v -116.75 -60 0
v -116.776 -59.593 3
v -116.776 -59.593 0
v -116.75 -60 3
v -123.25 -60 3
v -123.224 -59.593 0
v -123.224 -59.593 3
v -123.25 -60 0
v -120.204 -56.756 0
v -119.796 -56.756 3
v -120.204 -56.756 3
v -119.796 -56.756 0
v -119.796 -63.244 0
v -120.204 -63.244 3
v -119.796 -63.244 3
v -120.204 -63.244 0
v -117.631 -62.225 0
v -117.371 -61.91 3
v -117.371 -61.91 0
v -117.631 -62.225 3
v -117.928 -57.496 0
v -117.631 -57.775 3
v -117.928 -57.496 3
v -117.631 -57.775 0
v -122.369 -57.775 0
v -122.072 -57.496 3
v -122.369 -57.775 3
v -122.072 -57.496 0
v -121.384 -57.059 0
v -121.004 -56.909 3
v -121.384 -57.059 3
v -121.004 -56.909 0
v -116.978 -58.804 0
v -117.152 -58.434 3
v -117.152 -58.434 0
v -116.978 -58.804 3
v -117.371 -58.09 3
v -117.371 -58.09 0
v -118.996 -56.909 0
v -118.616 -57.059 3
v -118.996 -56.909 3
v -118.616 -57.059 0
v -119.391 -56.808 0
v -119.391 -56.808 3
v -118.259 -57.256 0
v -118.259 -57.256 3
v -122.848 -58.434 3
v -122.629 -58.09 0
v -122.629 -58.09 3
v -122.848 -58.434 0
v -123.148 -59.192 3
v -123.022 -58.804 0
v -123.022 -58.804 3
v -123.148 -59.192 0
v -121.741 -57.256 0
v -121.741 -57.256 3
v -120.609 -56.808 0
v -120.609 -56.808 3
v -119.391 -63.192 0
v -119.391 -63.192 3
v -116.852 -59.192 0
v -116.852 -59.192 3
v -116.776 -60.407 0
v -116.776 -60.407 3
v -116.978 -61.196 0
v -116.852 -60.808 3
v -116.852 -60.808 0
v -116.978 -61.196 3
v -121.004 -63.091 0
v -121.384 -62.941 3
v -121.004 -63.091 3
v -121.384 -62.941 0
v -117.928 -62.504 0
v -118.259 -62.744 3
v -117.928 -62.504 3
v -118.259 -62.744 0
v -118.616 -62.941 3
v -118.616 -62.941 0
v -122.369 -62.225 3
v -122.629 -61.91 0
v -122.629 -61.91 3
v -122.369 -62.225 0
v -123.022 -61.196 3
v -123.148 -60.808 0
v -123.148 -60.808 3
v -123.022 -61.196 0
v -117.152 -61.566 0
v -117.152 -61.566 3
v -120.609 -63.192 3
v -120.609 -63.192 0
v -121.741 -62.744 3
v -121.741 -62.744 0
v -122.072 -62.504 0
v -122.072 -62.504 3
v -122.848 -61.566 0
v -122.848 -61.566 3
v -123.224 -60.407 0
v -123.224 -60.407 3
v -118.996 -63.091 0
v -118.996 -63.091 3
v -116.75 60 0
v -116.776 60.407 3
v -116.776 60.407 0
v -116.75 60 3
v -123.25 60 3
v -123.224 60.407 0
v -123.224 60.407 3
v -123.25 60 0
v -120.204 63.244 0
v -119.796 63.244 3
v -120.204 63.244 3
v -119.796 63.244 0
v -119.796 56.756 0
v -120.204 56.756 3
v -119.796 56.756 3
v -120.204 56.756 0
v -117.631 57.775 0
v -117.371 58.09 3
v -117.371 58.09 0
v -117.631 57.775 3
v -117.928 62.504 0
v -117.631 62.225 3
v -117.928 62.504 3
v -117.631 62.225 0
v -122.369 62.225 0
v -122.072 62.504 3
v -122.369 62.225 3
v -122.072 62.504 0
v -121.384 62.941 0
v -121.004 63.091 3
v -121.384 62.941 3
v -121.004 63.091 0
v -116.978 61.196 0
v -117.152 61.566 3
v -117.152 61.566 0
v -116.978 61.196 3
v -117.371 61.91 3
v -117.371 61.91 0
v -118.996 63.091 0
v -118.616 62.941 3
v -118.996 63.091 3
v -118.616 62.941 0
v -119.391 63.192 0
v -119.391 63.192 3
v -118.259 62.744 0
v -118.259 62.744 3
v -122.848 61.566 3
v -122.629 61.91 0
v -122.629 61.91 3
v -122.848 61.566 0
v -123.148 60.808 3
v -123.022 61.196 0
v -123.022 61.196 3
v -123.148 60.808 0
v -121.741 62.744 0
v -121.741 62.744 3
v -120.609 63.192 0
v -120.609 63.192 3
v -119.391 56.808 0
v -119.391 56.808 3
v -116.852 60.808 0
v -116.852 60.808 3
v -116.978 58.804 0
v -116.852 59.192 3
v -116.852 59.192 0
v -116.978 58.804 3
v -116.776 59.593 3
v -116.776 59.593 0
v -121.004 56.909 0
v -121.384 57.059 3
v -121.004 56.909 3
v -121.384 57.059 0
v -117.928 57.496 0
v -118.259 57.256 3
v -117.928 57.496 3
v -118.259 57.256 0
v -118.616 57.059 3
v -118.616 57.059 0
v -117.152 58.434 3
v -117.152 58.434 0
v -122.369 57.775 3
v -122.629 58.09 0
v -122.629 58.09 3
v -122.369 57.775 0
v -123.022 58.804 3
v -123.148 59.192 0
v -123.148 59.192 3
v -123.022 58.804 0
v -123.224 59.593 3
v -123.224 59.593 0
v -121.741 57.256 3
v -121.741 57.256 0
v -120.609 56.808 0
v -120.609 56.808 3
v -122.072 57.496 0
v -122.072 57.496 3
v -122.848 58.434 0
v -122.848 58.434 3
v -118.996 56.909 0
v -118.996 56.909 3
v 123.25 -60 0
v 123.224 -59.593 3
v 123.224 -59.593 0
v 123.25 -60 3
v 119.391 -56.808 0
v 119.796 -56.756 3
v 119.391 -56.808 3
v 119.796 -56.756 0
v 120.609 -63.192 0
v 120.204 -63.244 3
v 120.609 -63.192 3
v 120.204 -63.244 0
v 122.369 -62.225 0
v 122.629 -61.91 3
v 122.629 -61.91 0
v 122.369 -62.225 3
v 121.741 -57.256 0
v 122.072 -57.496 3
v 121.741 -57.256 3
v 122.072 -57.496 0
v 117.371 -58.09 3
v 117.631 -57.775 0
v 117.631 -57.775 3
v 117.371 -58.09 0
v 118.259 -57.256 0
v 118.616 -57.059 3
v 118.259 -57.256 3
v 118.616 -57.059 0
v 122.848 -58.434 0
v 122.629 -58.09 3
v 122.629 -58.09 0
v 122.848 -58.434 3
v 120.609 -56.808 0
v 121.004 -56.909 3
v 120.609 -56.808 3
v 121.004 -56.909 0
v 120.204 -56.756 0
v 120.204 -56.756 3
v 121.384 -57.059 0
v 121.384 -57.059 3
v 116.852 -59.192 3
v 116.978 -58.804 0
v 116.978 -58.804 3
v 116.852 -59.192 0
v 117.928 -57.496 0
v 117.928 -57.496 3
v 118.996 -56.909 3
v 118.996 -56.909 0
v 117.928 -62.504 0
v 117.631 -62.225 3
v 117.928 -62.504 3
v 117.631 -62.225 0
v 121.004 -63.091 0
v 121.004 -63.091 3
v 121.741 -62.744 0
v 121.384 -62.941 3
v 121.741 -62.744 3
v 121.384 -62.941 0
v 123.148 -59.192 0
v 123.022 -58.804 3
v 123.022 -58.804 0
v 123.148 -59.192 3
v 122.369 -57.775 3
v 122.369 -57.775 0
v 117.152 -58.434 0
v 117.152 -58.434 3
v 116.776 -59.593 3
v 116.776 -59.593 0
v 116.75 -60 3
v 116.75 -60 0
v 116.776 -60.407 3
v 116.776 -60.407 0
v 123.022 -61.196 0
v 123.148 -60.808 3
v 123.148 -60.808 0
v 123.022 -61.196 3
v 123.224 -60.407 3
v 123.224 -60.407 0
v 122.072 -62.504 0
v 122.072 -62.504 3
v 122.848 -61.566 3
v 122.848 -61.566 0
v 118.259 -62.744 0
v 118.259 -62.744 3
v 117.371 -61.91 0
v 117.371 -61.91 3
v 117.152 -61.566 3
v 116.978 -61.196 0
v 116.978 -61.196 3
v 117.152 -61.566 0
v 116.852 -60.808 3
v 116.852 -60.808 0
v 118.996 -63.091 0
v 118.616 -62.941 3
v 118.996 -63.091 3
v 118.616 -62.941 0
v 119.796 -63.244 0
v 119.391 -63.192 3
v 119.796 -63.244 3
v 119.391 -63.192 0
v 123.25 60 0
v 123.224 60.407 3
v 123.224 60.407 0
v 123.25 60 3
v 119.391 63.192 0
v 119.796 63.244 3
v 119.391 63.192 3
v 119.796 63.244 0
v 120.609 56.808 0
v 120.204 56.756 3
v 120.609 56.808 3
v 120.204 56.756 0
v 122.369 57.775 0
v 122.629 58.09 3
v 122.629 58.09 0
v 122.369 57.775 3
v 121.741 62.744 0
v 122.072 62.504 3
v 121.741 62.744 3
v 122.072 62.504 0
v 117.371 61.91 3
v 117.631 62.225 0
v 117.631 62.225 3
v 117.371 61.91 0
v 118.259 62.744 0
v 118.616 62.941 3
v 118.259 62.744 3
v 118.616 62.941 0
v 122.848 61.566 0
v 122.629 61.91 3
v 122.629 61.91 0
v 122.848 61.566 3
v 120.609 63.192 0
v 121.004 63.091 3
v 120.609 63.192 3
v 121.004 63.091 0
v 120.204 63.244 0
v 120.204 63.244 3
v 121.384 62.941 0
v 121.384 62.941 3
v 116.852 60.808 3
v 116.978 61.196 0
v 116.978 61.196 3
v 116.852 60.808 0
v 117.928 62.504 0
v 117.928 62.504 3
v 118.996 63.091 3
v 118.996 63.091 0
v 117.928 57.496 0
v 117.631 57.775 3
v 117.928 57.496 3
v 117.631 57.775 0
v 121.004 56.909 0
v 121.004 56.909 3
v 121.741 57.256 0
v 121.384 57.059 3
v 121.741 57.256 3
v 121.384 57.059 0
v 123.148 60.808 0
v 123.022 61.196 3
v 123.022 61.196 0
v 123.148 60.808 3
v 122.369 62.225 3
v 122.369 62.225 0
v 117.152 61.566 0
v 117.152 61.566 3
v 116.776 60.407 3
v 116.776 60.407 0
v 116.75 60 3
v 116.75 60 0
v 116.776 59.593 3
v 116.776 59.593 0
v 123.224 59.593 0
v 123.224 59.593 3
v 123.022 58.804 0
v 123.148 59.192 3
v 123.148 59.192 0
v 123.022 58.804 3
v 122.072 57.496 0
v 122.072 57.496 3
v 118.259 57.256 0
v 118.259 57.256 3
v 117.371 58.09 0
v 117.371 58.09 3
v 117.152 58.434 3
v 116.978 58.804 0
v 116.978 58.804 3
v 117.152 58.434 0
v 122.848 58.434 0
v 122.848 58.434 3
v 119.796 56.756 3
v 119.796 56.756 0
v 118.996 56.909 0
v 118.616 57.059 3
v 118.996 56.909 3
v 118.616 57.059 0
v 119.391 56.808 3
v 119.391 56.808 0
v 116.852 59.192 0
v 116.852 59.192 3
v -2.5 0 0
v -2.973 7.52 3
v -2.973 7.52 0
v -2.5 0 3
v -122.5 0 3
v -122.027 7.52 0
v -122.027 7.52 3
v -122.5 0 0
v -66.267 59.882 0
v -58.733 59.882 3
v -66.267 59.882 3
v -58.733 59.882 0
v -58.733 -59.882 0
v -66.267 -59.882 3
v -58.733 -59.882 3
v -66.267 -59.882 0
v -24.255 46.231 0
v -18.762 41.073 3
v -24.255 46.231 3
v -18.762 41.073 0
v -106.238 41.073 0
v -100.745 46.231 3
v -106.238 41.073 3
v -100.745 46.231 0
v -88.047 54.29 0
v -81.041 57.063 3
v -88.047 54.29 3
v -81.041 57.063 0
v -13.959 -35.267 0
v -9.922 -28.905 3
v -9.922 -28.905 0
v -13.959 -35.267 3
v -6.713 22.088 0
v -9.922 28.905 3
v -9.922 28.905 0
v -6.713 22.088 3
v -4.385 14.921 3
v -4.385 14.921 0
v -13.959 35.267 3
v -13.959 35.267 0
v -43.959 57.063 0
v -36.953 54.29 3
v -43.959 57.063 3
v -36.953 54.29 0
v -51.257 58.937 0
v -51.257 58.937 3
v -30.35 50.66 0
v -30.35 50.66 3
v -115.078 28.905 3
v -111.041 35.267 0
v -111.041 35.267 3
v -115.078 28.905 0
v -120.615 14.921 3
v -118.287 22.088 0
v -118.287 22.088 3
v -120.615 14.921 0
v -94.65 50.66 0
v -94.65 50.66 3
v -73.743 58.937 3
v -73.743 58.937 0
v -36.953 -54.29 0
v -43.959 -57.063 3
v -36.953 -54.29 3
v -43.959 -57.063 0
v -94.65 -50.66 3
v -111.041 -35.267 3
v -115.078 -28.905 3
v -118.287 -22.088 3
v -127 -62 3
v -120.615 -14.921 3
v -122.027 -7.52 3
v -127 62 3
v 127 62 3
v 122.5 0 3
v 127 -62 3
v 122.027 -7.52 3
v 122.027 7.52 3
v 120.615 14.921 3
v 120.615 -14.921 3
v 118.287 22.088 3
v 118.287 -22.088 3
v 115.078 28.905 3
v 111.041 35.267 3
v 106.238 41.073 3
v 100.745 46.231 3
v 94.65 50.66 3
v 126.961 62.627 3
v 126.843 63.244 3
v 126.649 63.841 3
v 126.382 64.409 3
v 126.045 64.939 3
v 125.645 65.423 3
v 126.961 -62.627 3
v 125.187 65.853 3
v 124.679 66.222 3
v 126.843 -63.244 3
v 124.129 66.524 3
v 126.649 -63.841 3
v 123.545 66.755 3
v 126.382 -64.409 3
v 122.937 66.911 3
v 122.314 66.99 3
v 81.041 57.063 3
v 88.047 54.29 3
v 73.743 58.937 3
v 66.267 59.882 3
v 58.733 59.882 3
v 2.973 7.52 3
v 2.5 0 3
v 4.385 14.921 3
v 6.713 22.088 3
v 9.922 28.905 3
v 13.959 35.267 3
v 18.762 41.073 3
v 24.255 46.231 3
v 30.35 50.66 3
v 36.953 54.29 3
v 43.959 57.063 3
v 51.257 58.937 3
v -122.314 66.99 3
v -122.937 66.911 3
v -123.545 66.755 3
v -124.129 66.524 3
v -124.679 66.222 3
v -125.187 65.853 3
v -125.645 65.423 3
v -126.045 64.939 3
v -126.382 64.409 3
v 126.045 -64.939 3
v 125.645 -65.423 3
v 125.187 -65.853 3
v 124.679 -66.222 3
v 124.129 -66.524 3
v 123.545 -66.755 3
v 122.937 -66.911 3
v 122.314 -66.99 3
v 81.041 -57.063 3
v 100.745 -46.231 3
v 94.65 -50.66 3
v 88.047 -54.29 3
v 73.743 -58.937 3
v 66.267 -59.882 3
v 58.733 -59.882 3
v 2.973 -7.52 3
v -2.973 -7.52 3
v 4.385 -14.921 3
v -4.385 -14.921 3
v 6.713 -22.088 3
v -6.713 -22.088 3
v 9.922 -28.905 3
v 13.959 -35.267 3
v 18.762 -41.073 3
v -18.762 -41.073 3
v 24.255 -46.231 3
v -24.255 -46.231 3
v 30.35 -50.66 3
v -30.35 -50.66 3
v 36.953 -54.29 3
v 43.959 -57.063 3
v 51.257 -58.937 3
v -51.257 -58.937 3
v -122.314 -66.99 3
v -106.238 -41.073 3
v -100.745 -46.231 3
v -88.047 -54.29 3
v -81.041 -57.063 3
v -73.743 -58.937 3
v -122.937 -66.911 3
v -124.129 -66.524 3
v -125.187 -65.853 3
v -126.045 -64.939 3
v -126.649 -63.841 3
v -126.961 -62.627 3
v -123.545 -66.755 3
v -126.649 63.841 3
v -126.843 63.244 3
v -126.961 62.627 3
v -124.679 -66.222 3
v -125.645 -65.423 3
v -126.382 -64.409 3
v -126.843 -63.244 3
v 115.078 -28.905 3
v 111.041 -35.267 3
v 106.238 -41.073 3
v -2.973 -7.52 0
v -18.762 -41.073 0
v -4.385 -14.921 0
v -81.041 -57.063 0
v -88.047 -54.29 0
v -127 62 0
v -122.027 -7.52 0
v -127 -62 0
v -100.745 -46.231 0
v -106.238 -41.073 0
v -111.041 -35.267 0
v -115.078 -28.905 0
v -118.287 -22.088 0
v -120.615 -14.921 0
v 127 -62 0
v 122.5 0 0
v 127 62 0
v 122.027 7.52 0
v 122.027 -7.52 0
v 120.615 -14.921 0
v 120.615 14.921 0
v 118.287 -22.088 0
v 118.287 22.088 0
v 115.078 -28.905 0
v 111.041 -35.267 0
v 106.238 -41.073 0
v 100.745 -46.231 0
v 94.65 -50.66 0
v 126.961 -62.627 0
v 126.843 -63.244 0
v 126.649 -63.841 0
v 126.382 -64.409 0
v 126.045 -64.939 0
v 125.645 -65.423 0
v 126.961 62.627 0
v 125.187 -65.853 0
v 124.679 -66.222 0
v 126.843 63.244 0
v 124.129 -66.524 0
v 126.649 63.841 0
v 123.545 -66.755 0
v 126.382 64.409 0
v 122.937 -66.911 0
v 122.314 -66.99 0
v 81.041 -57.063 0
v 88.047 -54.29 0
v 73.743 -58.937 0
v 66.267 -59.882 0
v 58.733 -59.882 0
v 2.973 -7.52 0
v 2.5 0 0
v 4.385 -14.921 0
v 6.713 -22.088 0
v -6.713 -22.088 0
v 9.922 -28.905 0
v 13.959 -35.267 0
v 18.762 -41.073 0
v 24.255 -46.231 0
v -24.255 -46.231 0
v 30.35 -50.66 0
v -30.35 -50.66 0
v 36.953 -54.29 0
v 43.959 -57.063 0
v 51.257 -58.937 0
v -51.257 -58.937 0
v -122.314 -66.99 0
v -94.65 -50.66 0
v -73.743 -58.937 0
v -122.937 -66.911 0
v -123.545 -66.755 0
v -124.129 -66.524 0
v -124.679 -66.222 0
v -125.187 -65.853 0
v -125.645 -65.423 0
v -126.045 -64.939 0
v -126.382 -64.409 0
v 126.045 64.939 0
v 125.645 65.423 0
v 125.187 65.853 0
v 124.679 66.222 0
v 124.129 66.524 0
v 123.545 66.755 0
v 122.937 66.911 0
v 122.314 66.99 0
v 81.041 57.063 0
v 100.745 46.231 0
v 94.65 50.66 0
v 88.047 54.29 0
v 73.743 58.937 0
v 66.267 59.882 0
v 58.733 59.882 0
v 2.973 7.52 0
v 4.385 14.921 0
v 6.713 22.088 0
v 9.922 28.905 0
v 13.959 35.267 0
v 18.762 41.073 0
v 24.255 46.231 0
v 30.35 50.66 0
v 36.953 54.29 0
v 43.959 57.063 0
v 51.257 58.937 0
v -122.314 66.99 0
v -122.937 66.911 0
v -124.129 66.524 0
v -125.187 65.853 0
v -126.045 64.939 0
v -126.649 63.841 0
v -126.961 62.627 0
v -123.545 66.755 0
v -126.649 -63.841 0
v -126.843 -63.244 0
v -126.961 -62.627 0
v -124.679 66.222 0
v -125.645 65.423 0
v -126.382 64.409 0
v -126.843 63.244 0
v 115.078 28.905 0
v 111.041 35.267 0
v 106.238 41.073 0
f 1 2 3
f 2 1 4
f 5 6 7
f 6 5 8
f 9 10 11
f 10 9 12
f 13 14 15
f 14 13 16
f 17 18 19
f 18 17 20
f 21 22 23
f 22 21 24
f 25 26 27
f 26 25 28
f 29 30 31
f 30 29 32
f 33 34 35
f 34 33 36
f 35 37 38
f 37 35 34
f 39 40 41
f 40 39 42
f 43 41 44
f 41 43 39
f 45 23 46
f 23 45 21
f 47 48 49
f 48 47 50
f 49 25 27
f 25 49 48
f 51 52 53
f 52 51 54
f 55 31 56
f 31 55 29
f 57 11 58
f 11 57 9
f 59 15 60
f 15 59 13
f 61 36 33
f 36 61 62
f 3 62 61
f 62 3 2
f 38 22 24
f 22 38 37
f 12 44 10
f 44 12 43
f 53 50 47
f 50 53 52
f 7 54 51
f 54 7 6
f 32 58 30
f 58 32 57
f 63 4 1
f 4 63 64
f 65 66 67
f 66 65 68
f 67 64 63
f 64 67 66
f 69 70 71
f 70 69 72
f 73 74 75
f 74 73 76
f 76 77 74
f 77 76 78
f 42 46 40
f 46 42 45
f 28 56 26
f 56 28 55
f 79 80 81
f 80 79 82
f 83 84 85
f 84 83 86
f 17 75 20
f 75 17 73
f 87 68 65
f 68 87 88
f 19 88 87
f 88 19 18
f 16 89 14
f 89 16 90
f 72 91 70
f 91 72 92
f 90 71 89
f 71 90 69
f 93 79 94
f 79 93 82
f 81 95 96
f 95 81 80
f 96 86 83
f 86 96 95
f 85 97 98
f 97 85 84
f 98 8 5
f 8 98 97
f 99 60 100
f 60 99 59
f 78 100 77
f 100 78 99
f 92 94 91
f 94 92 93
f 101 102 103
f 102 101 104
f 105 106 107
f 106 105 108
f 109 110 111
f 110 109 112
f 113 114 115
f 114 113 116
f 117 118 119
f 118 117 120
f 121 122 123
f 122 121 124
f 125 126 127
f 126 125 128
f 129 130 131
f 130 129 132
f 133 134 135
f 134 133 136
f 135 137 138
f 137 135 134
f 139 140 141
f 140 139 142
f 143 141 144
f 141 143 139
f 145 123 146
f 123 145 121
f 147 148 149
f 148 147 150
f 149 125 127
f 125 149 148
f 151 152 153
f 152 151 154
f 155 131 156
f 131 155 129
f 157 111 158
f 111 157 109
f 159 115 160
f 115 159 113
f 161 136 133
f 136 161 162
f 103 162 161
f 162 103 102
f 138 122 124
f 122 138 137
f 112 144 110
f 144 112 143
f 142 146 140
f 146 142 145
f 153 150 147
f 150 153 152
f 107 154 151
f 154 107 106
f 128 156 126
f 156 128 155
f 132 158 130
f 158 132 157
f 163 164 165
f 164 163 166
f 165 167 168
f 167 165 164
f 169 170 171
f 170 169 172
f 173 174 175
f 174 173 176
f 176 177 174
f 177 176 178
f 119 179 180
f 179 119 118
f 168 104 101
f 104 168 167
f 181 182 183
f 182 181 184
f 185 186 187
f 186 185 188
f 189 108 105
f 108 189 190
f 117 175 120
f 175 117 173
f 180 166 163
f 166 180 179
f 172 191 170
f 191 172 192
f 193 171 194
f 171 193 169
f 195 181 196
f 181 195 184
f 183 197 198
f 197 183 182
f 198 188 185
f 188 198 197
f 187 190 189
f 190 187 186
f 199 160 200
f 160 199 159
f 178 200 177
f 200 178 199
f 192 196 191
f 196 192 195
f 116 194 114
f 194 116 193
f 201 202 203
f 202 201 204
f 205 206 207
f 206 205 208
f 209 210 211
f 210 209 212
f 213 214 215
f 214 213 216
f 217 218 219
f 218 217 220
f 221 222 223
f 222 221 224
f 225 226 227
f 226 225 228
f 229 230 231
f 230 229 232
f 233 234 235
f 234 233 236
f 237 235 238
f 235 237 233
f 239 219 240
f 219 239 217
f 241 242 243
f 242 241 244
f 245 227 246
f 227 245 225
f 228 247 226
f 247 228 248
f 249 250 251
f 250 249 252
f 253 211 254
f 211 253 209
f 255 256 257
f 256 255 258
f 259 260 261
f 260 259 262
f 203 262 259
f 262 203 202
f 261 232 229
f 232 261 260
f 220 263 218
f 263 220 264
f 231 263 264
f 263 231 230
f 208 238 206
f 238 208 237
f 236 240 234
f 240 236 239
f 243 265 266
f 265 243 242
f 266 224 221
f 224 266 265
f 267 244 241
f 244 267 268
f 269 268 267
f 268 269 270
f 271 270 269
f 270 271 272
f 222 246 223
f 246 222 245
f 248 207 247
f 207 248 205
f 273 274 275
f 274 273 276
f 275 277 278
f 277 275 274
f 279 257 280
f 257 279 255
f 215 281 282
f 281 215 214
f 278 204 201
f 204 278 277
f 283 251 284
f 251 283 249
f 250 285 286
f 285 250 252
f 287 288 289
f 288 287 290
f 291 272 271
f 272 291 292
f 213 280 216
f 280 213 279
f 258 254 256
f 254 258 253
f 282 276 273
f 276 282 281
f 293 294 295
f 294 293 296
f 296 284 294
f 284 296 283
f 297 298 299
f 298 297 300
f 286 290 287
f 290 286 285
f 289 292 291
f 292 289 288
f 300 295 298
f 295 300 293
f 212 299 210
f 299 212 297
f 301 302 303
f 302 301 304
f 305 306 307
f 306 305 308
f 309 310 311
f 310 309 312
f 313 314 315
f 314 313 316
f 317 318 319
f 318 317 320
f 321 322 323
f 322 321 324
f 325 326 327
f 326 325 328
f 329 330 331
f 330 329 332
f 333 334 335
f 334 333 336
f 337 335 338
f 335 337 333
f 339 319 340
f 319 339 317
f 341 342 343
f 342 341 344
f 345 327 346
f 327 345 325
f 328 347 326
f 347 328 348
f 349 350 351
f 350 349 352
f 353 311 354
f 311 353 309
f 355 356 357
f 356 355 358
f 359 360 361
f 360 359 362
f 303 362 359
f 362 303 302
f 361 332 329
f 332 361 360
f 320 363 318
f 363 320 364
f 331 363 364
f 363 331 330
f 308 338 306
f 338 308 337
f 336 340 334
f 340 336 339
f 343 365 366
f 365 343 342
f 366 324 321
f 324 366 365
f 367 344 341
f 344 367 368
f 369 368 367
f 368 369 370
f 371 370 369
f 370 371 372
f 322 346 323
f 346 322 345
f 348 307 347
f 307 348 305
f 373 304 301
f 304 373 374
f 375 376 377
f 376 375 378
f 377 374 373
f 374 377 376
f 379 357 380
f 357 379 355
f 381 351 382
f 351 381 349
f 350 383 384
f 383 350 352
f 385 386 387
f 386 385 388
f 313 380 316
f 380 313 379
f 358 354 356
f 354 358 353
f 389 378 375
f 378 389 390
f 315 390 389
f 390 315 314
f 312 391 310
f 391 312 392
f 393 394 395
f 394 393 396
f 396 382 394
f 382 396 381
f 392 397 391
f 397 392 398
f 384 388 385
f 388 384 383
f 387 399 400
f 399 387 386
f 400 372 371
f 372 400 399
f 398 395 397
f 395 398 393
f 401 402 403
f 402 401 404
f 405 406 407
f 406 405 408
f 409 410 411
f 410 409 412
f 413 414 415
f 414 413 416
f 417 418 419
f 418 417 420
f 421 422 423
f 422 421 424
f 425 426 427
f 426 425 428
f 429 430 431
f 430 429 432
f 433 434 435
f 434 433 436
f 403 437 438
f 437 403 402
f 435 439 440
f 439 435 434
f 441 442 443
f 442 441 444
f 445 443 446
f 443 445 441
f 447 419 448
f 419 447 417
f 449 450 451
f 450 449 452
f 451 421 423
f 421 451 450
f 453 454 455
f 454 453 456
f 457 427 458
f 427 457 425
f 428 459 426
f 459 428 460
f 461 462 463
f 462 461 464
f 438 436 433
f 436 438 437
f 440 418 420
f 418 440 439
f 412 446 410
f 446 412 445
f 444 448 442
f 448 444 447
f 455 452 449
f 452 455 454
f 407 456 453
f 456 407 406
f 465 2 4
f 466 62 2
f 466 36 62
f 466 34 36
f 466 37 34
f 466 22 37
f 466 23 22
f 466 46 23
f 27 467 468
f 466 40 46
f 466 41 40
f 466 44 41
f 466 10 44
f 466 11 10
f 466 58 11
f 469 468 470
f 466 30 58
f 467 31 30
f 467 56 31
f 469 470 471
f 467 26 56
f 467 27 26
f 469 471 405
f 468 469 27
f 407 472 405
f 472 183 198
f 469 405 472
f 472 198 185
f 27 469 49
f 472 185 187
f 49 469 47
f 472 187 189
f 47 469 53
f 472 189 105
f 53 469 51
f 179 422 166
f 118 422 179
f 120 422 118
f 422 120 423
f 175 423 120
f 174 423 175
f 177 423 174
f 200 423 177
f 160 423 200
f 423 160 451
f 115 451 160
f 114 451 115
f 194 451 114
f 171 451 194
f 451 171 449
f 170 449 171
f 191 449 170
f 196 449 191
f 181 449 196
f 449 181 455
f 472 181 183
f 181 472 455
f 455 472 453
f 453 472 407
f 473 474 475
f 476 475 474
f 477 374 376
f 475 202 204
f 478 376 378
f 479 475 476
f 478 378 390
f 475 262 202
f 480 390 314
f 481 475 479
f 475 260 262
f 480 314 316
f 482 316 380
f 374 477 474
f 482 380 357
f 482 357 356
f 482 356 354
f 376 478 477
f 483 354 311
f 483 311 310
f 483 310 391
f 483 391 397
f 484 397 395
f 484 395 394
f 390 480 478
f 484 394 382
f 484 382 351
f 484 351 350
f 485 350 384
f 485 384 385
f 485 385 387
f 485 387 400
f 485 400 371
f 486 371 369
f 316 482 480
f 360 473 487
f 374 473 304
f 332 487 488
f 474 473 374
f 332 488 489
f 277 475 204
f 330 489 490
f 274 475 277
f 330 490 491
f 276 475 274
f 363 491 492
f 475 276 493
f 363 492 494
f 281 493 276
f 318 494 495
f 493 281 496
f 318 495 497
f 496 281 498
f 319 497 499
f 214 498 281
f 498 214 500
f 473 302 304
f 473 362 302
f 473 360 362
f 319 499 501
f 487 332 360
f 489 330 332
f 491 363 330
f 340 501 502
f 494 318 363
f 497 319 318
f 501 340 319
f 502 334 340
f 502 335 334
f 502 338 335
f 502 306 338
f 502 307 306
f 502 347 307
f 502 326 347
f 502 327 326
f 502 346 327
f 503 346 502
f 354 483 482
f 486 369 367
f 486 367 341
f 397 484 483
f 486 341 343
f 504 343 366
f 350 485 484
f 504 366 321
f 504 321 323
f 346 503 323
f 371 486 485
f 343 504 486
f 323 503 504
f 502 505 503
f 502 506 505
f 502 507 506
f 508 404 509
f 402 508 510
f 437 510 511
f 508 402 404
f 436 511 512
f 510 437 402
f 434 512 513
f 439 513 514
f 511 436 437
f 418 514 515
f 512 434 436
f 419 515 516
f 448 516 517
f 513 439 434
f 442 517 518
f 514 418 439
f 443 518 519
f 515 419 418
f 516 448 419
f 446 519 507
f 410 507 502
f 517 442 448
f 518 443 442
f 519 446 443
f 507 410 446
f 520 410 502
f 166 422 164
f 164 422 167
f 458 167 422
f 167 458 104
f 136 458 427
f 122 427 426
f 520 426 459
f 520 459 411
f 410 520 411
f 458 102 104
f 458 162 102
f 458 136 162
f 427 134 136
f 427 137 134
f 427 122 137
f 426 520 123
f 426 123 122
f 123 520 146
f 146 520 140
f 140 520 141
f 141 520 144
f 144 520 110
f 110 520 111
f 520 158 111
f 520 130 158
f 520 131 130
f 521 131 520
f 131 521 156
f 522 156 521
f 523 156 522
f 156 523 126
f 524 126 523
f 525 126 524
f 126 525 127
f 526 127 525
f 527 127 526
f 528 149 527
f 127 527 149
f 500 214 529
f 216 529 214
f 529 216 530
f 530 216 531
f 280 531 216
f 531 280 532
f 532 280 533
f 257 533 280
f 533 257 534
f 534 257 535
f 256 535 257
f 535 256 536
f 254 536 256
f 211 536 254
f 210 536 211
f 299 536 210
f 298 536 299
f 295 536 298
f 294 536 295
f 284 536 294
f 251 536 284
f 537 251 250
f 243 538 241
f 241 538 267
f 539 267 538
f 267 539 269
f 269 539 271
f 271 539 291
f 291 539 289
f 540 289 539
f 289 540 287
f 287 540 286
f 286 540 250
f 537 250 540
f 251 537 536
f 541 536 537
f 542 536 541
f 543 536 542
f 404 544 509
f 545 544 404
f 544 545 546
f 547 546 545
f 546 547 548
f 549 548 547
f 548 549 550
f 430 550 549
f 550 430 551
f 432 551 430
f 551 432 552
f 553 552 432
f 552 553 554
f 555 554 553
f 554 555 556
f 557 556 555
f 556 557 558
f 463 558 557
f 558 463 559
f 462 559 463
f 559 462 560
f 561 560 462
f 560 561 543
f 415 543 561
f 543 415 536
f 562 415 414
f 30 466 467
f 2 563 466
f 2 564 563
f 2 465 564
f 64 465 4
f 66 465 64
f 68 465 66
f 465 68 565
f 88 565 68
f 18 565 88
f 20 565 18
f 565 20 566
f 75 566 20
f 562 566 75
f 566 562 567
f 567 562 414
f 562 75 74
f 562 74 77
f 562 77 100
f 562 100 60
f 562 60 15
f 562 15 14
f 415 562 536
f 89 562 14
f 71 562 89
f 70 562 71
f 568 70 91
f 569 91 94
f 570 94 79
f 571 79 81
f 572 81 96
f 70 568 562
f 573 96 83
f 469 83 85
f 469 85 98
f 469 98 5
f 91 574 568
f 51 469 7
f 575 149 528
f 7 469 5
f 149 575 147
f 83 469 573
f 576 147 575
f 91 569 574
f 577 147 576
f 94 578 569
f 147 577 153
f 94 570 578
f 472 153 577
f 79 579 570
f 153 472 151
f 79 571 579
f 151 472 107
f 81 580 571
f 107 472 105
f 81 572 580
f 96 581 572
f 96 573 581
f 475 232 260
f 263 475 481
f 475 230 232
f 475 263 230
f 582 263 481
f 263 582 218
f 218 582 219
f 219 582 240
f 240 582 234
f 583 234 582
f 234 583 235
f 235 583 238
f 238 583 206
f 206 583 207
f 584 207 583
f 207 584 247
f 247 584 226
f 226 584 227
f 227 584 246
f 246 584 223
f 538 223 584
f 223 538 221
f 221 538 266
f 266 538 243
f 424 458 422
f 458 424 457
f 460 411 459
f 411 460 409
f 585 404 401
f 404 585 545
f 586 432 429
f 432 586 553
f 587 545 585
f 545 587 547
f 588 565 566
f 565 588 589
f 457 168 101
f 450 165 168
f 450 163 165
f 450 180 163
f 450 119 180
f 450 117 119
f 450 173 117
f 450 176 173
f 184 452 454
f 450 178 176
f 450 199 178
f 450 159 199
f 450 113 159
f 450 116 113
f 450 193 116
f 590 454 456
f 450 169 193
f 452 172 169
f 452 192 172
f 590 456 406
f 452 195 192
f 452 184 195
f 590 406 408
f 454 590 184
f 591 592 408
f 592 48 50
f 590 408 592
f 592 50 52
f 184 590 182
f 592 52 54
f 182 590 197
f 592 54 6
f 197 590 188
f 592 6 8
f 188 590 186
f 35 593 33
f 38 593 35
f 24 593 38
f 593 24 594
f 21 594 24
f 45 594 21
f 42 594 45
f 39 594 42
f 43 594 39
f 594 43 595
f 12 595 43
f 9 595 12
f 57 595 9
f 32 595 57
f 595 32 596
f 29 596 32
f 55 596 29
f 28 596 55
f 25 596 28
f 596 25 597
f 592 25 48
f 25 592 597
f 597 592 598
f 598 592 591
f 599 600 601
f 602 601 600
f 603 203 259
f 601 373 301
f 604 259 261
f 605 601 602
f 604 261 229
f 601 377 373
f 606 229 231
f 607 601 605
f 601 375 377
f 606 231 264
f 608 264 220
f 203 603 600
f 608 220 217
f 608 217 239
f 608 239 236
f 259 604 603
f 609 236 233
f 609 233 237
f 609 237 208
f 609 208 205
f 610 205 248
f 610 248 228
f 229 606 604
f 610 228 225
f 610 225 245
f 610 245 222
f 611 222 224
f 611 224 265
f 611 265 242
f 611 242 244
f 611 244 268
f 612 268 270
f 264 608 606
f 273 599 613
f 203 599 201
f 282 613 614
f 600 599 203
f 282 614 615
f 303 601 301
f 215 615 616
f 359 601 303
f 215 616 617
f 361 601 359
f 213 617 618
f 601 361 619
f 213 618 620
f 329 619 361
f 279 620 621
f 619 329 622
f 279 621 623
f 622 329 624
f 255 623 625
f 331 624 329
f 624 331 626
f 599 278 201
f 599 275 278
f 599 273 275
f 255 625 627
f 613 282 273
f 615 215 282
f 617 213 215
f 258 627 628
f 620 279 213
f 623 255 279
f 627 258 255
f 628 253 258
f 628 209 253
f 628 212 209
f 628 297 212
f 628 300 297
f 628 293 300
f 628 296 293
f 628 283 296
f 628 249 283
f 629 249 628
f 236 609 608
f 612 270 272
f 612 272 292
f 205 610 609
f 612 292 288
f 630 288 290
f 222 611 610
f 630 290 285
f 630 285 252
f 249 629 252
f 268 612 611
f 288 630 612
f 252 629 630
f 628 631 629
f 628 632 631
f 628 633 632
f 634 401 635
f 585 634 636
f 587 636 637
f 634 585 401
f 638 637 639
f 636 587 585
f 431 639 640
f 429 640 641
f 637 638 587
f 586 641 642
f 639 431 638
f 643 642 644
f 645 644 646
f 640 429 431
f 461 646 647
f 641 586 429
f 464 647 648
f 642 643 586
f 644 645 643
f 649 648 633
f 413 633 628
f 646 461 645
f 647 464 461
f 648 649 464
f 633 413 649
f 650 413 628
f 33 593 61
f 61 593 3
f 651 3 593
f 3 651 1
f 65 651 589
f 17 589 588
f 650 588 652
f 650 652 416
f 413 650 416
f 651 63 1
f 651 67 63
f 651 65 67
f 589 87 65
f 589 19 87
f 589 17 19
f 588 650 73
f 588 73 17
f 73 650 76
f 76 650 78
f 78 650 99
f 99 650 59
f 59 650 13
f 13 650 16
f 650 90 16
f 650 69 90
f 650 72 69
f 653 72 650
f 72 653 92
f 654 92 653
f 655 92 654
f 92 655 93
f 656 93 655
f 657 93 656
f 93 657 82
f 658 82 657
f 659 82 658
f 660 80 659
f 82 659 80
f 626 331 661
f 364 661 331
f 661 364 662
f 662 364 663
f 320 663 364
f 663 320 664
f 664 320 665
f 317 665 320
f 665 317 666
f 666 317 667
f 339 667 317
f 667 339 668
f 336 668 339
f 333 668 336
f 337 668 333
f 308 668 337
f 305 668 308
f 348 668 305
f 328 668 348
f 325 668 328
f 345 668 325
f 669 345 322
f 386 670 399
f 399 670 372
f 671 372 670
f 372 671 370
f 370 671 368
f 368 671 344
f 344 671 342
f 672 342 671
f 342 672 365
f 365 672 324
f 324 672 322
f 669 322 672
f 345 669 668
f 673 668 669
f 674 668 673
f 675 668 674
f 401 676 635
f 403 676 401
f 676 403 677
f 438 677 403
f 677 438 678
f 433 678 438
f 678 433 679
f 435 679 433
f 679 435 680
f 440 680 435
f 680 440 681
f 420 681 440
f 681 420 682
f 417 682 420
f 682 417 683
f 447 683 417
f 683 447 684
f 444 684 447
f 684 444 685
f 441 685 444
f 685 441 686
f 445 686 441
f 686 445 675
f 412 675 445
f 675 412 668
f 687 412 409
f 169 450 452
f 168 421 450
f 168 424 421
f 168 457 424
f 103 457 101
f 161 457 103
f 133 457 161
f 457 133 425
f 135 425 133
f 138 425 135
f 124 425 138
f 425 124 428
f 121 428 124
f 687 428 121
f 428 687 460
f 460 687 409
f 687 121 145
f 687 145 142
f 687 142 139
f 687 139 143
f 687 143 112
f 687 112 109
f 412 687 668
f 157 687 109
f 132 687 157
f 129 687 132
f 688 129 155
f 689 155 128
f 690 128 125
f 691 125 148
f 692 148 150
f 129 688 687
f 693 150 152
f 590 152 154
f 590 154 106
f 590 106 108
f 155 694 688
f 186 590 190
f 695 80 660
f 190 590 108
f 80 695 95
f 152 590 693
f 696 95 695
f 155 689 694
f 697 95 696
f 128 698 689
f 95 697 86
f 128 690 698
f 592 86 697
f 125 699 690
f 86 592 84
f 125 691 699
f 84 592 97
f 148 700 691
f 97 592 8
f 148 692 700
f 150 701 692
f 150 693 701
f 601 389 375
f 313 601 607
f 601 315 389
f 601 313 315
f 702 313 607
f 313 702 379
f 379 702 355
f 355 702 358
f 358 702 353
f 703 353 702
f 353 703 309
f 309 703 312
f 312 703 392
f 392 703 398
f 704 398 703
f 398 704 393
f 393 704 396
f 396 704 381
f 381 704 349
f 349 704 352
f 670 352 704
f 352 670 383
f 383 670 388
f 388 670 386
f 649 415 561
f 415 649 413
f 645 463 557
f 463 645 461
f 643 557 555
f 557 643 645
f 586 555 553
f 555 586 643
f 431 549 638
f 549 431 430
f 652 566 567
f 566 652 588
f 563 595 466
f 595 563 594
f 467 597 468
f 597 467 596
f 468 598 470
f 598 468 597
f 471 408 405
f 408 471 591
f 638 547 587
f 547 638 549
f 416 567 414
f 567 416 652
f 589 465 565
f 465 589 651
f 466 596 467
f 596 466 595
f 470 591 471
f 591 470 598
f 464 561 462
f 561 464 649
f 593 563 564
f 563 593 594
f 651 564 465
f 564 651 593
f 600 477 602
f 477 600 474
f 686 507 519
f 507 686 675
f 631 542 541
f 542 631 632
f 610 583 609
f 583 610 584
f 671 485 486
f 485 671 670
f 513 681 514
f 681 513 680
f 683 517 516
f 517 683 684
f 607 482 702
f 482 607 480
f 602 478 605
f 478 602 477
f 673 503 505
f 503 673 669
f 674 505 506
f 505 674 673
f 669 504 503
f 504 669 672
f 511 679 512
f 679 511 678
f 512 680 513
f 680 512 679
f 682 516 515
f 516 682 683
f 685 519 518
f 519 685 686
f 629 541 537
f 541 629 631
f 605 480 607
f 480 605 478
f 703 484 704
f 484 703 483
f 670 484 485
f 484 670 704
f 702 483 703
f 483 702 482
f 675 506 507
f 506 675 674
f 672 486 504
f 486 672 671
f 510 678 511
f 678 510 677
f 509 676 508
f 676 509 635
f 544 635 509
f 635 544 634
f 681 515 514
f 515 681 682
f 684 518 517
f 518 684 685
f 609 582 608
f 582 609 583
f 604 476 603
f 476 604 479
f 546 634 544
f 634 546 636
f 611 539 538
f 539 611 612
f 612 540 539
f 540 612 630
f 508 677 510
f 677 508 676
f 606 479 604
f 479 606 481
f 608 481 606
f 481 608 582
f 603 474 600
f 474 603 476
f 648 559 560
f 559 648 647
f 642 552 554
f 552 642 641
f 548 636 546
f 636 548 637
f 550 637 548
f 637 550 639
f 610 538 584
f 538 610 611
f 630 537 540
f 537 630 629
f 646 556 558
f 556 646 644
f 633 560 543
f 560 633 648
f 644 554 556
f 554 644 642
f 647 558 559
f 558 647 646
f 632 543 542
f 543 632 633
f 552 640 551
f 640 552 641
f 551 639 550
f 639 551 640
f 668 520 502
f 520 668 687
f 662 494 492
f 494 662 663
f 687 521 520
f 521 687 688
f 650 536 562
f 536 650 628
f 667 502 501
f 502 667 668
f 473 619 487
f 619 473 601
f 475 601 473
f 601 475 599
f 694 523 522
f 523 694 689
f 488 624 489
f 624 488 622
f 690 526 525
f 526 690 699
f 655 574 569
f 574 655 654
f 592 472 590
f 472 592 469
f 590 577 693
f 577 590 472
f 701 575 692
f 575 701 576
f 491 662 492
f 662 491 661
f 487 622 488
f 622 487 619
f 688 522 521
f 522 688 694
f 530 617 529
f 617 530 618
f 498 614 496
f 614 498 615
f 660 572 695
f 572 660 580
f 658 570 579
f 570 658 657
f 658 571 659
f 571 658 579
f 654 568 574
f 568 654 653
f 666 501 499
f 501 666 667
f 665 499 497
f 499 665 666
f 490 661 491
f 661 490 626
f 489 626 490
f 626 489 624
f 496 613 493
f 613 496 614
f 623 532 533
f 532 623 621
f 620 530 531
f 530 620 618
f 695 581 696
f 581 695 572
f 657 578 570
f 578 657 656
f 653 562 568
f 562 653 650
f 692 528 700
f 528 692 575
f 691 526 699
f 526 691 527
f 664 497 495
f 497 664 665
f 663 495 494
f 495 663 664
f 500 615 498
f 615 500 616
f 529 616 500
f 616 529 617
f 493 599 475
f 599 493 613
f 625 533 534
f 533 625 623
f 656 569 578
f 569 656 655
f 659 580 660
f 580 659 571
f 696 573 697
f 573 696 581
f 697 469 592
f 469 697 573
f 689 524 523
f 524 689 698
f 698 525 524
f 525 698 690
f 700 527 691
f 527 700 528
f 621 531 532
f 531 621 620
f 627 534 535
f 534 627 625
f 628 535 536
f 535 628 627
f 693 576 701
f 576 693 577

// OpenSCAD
$fn = 50;


difference() {
	union() {
		hull() {
			translate(v = [-122.0000000000, 62.0000000000, 0]) {
				cylinder(h = 3, r = 5);
			}
			translate(v = [122.0000000000, 62.0000000000, 0]) {
				cylinder(h = 3, r = 5);
			}
			translate(v = [-122.0000000000, -62.0000000000, 0]) {
				cylinder(h = 3, r = 5);
			}
			translate(v = [122.0000000000, -62.0000000000, 0]) {
				cylinder(h = 3, r = 5);
			}
		}
	}
	union() {
		#translate(v = [-120.0000000000, -60.0000000000, -100.0000000000]) {
			cylinder(h = 200, r = 3.2500000000);
		}
		#translate(v = [-120.0000000000, 60.0000000000, -100.0000000000]) {
			cylinder(h = 200, r = 3.2500000000);
		}
		#translate(v = [120.0000000000, -60.0000000000, -100.0000000000]) {
			cylinder(h = 200, r = 3.2500000000);
		}
		#translate(v = [120.0000000000, 60.0000000000, -100.0000000000]) {
			cylinder(h = 200, r = 3.2500000000);
		}
		#translate(v = [-62.5000000000, 0, 0]) {
			cylinder(h = 3, r = 60.0000000000);
		}
		#translate(v = [62.5000000000, 0, 0]) {
			cylinder(h = 3, r = 60.0000000000);
		}
	}
}
